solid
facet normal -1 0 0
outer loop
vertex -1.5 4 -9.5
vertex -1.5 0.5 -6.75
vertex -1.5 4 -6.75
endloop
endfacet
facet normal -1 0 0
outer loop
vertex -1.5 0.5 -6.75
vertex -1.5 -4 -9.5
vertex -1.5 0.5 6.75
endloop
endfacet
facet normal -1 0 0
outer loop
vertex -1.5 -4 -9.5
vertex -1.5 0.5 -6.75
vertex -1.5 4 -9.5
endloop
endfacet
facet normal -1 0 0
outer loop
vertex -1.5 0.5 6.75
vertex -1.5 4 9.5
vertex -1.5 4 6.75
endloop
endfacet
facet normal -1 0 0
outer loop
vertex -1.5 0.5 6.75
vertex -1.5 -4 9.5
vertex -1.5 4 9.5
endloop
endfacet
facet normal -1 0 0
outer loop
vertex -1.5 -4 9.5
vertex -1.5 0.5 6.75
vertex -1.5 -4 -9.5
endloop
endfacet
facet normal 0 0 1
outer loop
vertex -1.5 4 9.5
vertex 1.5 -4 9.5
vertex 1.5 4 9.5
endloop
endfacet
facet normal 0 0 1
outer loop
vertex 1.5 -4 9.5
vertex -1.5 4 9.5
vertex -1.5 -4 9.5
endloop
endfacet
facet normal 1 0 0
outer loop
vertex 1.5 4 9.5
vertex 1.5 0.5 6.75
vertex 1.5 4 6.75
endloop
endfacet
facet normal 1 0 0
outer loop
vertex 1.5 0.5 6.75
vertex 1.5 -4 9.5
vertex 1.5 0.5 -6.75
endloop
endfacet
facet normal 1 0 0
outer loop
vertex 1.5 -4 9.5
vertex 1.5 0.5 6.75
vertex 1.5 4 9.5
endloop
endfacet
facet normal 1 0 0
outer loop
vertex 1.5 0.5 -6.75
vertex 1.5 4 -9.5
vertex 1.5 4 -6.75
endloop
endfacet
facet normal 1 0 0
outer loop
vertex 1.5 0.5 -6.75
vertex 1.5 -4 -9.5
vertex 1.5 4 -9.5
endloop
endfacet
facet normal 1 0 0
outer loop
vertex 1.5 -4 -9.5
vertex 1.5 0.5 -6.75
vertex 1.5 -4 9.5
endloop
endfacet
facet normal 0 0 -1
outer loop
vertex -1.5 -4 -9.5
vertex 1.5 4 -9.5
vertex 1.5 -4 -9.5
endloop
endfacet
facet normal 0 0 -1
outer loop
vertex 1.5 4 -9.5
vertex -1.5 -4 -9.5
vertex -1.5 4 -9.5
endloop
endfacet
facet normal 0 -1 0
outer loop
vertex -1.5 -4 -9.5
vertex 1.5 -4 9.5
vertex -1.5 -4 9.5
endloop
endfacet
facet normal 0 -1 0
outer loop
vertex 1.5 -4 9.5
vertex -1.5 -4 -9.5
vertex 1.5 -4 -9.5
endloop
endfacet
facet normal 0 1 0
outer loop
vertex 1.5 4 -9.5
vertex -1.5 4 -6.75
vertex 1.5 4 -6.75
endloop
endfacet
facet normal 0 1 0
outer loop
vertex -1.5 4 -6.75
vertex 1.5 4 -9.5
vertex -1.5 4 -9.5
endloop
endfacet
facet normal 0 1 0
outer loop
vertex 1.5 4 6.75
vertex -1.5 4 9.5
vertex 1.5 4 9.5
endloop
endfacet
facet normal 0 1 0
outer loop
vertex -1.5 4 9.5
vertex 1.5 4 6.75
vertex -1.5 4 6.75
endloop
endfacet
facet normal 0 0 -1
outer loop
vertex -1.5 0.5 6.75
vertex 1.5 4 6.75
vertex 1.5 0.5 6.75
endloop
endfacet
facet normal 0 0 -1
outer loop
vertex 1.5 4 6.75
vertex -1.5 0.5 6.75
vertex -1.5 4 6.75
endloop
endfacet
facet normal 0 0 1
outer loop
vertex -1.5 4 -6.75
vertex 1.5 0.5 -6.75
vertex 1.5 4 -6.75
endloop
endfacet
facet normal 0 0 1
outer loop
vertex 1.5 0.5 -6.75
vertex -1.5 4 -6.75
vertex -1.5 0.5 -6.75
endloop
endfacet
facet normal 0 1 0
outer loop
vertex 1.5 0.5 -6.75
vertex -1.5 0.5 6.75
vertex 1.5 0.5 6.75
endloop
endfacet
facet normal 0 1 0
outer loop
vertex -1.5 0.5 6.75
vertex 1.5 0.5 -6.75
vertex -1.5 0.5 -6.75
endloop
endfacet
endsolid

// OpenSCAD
// c-clip for gel combs to prevent holes in poured agarose gels

difference() {
    cube([3,8,19], center=true);

    color("red") translate([0,3,0])
    cube([3,5,13.5], center=true);
}
